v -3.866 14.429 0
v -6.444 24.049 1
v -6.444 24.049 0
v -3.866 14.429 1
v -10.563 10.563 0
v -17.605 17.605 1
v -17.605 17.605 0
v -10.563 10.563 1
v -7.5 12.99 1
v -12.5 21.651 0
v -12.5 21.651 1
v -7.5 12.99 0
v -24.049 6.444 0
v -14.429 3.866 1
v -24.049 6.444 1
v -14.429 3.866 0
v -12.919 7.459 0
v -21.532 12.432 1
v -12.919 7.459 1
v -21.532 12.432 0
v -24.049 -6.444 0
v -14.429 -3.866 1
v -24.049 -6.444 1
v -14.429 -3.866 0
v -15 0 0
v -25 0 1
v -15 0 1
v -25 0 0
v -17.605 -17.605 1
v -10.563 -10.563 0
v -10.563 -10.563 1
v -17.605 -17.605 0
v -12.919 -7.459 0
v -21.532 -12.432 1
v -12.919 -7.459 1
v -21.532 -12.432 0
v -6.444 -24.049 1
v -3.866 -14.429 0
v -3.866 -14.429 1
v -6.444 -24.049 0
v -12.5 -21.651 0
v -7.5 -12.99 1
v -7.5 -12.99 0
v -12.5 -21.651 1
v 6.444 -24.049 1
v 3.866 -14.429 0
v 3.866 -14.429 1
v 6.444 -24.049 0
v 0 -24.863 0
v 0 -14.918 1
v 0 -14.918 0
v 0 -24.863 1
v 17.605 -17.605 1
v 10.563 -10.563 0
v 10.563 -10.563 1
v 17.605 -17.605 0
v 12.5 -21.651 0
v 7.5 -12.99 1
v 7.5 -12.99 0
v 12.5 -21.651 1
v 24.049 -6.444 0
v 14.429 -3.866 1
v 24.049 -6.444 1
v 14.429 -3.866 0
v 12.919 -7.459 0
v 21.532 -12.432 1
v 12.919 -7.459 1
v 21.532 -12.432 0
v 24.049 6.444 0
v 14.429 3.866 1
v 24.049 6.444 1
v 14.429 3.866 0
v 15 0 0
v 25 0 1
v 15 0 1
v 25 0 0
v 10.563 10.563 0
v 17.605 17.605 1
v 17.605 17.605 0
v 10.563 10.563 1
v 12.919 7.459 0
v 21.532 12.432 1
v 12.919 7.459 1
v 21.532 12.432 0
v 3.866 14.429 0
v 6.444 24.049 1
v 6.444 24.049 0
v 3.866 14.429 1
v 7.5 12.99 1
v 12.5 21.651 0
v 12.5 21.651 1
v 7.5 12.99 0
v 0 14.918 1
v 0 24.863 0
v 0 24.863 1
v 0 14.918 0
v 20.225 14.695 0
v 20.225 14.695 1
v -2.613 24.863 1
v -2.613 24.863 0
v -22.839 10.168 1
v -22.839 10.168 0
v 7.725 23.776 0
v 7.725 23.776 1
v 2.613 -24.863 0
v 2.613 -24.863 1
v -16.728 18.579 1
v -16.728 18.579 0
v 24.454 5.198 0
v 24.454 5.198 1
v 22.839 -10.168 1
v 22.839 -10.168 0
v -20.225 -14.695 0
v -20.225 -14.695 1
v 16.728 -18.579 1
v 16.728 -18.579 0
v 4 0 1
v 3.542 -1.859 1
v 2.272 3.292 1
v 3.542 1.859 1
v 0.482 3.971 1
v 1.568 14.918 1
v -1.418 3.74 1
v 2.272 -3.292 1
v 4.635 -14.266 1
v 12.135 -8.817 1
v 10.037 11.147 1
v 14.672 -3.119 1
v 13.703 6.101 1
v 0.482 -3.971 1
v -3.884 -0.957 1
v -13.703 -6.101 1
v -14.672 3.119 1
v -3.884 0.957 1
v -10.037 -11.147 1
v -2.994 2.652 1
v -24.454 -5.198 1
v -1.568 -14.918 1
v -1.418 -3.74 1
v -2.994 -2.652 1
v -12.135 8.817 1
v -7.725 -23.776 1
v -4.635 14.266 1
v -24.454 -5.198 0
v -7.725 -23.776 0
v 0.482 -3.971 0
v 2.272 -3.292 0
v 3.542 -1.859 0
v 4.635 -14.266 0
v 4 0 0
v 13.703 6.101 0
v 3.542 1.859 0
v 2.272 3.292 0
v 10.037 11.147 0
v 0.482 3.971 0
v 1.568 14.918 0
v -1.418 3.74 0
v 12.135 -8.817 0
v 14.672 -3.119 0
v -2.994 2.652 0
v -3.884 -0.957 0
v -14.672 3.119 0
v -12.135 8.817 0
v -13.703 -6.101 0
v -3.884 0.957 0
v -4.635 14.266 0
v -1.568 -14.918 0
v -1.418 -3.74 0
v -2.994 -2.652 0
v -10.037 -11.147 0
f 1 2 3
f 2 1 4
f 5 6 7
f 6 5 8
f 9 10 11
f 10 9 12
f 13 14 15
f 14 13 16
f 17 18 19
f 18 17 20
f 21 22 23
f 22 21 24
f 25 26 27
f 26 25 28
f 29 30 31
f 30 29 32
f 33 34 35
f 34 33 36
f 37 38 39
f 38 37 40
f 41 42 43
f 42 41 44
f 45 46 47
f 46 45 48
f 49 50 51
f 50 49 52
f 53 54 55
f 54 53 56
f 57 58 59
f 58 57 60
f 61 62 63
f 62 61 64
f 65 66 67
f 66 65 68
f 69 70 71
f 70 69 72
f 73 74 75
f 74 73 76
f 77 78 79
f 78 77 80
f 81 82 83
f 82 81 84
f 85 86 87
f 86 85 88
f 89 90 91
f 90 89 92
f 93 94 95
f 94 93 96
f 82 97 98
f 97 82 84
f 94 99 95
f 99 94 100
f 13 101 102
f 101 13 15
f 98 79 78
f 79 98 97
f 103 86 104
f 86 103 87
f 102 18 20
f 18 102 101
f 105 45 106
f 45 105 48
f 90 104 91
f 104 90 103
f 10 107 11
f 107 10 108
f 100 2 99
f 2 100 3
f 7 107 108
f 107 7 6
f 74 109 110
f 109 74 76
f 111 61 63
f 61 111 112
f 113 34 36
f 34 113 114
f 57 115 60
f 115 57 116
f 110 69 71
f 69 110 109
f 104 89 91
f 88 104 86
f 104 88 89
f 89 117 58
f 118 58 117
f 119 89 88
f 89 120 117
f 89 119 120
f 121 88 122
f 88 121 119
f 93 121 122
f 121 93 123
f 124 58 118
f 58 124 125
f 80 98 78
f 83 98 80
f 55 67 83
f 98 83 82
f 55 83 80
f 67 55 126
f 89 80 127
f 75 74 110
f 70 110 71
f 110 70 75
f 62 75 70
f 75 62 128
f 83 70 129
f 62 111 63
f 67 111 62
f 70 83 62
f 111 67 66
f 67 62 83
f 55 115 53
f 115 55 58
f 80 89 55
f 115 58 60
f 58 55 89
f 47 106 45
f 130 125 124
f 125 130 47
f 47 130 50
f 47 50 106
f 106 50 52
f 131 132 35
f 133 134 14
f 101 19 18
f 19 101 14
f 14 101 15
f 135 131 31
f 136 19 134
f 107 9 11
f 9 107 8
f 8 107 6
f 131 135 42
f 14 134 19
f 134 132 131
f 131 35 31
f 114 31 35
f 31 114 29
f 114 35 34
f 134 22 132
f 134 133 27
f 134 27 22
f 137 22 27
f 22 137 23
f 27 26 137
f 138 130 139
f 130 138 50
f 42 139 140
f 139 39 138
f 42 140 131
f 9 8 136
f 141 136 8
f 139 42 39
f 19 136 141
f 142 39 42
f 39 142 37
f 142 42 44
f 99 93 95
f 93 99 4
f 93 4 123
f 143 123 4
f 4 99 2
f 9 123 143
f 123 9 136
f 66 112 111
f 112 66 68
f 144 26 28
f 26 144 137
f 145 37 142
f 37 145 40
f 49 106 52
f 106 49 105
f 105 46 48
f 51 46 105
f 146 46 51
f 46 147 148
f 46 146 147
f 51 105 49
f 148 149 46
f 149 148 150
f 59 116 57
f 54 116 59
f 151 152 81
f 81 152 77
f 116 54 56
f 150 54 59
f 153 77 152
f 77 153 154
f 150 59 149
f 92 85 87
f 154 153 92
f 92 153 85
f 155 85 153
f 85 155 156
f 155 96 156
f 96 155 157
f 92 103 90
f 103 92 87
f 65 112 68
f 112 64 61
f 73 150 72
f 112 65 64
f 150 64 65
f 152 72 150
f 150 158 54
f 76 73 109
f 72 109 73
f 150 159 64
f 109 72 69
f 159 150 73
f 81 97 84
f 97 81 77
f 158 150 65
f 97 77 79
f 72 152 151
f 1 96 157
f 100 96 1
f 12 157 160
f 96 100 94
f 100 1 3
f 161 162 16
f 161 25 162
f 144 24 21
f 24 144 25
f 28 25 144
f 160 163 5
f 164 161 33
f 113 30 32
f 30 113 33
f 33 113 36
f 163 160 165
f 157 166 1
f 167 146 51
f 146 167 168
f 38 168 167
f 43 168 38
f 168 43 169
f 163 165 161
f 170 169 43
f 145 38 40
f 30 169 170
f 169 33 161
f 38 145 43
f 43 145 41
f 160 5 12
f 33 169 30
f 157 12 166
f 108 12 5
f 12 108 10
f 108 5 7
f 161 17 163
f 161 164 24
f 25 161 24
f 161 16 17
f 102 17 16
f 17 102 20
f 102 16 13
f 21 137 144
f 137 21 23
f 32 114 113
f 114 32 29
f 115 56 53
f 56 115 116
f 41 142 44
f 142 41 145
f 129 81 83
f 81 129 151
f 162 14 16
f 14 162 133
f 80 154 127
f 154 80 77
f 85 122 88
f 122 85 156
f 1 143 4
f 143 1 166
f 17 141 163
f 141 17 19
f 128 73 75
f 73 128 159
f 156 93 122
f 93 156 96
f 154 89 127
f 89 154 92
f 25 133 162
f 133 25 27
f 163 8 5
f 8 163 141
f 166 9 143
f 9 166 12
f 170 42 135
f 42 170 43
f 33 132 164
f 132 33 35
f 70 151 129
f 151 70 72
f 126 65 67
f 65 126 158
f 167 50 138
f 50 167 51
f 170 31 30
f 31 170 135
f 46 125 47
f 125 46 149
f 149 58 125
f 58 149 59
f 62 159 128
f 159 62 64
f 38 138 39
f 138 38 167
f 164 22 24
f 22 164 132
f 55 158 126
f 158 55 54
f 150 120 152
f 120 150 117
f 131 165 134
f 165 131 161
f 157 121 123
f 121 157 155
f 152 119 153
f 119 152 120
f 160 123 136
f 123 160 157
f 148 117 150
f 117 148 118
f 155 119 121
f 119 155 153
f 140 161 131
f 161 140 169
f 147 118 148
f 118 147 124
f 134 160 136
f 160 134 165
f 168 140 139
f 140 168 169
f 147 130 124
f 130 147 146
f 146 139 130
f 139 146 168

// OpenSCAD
//========================================
//
//   Speed Encoder
//   Copyright (C) 2016  Open Garage
//
//   This program is free software; you can redistribute it and/or modify
//   it under the terms of the GNU General Public License as published by
//   the Free Software Foundation; either version 3 of the License, or
//   (at your option) any later version.
//
//   This program is distributed in the hope that it will be useful,
//   but WITHOUT ANY WARRANTY; without even the implied warranty of
//   MERCHANTABILITY or FITNESS FOR A PARTICULAR PURPOSE.  See the
//   GNU General Public License for more details.
//
//   You should have received a copy of the GNU General Public License
//   along with this program; if not, write to the Free Software Foundation,
//   Inc., 51 Franklin Street, Fifth Floor, Boston, MA 02110-1301  USA
//
//========================================

thickness=1;
holeradius=4;
innerradius=15;
outerradius=25;
nrpulses=12;

fillangle=360/nrpulses/2;
spacing=0.1;

difference() {
    union() {
        cylinder(h = thickness, r = innerradius);
        intersection() {
            cylinder(h = thickness, r = outerradius);
            for(angle = [0:1:nrpulses]) {
                rotate([0, 0, fillangle * angle * 2])
                difference() {
                    rotate([0, 0, fillangle]) translate([0, 0, -spacing]) cube([outerradius + spacing, outerradius + spacing, thickness + spacing * 2]);
                    translate([0, 0, -spacing]) cube([outerradius + spacing, outerradius + spacing +10, thickness + spacing * 2]);
                }
            }
        }
    }
    translate([0, 0, -spacing]) cylinder(h = thickness + spacing * 2, r = holeradius);
}
